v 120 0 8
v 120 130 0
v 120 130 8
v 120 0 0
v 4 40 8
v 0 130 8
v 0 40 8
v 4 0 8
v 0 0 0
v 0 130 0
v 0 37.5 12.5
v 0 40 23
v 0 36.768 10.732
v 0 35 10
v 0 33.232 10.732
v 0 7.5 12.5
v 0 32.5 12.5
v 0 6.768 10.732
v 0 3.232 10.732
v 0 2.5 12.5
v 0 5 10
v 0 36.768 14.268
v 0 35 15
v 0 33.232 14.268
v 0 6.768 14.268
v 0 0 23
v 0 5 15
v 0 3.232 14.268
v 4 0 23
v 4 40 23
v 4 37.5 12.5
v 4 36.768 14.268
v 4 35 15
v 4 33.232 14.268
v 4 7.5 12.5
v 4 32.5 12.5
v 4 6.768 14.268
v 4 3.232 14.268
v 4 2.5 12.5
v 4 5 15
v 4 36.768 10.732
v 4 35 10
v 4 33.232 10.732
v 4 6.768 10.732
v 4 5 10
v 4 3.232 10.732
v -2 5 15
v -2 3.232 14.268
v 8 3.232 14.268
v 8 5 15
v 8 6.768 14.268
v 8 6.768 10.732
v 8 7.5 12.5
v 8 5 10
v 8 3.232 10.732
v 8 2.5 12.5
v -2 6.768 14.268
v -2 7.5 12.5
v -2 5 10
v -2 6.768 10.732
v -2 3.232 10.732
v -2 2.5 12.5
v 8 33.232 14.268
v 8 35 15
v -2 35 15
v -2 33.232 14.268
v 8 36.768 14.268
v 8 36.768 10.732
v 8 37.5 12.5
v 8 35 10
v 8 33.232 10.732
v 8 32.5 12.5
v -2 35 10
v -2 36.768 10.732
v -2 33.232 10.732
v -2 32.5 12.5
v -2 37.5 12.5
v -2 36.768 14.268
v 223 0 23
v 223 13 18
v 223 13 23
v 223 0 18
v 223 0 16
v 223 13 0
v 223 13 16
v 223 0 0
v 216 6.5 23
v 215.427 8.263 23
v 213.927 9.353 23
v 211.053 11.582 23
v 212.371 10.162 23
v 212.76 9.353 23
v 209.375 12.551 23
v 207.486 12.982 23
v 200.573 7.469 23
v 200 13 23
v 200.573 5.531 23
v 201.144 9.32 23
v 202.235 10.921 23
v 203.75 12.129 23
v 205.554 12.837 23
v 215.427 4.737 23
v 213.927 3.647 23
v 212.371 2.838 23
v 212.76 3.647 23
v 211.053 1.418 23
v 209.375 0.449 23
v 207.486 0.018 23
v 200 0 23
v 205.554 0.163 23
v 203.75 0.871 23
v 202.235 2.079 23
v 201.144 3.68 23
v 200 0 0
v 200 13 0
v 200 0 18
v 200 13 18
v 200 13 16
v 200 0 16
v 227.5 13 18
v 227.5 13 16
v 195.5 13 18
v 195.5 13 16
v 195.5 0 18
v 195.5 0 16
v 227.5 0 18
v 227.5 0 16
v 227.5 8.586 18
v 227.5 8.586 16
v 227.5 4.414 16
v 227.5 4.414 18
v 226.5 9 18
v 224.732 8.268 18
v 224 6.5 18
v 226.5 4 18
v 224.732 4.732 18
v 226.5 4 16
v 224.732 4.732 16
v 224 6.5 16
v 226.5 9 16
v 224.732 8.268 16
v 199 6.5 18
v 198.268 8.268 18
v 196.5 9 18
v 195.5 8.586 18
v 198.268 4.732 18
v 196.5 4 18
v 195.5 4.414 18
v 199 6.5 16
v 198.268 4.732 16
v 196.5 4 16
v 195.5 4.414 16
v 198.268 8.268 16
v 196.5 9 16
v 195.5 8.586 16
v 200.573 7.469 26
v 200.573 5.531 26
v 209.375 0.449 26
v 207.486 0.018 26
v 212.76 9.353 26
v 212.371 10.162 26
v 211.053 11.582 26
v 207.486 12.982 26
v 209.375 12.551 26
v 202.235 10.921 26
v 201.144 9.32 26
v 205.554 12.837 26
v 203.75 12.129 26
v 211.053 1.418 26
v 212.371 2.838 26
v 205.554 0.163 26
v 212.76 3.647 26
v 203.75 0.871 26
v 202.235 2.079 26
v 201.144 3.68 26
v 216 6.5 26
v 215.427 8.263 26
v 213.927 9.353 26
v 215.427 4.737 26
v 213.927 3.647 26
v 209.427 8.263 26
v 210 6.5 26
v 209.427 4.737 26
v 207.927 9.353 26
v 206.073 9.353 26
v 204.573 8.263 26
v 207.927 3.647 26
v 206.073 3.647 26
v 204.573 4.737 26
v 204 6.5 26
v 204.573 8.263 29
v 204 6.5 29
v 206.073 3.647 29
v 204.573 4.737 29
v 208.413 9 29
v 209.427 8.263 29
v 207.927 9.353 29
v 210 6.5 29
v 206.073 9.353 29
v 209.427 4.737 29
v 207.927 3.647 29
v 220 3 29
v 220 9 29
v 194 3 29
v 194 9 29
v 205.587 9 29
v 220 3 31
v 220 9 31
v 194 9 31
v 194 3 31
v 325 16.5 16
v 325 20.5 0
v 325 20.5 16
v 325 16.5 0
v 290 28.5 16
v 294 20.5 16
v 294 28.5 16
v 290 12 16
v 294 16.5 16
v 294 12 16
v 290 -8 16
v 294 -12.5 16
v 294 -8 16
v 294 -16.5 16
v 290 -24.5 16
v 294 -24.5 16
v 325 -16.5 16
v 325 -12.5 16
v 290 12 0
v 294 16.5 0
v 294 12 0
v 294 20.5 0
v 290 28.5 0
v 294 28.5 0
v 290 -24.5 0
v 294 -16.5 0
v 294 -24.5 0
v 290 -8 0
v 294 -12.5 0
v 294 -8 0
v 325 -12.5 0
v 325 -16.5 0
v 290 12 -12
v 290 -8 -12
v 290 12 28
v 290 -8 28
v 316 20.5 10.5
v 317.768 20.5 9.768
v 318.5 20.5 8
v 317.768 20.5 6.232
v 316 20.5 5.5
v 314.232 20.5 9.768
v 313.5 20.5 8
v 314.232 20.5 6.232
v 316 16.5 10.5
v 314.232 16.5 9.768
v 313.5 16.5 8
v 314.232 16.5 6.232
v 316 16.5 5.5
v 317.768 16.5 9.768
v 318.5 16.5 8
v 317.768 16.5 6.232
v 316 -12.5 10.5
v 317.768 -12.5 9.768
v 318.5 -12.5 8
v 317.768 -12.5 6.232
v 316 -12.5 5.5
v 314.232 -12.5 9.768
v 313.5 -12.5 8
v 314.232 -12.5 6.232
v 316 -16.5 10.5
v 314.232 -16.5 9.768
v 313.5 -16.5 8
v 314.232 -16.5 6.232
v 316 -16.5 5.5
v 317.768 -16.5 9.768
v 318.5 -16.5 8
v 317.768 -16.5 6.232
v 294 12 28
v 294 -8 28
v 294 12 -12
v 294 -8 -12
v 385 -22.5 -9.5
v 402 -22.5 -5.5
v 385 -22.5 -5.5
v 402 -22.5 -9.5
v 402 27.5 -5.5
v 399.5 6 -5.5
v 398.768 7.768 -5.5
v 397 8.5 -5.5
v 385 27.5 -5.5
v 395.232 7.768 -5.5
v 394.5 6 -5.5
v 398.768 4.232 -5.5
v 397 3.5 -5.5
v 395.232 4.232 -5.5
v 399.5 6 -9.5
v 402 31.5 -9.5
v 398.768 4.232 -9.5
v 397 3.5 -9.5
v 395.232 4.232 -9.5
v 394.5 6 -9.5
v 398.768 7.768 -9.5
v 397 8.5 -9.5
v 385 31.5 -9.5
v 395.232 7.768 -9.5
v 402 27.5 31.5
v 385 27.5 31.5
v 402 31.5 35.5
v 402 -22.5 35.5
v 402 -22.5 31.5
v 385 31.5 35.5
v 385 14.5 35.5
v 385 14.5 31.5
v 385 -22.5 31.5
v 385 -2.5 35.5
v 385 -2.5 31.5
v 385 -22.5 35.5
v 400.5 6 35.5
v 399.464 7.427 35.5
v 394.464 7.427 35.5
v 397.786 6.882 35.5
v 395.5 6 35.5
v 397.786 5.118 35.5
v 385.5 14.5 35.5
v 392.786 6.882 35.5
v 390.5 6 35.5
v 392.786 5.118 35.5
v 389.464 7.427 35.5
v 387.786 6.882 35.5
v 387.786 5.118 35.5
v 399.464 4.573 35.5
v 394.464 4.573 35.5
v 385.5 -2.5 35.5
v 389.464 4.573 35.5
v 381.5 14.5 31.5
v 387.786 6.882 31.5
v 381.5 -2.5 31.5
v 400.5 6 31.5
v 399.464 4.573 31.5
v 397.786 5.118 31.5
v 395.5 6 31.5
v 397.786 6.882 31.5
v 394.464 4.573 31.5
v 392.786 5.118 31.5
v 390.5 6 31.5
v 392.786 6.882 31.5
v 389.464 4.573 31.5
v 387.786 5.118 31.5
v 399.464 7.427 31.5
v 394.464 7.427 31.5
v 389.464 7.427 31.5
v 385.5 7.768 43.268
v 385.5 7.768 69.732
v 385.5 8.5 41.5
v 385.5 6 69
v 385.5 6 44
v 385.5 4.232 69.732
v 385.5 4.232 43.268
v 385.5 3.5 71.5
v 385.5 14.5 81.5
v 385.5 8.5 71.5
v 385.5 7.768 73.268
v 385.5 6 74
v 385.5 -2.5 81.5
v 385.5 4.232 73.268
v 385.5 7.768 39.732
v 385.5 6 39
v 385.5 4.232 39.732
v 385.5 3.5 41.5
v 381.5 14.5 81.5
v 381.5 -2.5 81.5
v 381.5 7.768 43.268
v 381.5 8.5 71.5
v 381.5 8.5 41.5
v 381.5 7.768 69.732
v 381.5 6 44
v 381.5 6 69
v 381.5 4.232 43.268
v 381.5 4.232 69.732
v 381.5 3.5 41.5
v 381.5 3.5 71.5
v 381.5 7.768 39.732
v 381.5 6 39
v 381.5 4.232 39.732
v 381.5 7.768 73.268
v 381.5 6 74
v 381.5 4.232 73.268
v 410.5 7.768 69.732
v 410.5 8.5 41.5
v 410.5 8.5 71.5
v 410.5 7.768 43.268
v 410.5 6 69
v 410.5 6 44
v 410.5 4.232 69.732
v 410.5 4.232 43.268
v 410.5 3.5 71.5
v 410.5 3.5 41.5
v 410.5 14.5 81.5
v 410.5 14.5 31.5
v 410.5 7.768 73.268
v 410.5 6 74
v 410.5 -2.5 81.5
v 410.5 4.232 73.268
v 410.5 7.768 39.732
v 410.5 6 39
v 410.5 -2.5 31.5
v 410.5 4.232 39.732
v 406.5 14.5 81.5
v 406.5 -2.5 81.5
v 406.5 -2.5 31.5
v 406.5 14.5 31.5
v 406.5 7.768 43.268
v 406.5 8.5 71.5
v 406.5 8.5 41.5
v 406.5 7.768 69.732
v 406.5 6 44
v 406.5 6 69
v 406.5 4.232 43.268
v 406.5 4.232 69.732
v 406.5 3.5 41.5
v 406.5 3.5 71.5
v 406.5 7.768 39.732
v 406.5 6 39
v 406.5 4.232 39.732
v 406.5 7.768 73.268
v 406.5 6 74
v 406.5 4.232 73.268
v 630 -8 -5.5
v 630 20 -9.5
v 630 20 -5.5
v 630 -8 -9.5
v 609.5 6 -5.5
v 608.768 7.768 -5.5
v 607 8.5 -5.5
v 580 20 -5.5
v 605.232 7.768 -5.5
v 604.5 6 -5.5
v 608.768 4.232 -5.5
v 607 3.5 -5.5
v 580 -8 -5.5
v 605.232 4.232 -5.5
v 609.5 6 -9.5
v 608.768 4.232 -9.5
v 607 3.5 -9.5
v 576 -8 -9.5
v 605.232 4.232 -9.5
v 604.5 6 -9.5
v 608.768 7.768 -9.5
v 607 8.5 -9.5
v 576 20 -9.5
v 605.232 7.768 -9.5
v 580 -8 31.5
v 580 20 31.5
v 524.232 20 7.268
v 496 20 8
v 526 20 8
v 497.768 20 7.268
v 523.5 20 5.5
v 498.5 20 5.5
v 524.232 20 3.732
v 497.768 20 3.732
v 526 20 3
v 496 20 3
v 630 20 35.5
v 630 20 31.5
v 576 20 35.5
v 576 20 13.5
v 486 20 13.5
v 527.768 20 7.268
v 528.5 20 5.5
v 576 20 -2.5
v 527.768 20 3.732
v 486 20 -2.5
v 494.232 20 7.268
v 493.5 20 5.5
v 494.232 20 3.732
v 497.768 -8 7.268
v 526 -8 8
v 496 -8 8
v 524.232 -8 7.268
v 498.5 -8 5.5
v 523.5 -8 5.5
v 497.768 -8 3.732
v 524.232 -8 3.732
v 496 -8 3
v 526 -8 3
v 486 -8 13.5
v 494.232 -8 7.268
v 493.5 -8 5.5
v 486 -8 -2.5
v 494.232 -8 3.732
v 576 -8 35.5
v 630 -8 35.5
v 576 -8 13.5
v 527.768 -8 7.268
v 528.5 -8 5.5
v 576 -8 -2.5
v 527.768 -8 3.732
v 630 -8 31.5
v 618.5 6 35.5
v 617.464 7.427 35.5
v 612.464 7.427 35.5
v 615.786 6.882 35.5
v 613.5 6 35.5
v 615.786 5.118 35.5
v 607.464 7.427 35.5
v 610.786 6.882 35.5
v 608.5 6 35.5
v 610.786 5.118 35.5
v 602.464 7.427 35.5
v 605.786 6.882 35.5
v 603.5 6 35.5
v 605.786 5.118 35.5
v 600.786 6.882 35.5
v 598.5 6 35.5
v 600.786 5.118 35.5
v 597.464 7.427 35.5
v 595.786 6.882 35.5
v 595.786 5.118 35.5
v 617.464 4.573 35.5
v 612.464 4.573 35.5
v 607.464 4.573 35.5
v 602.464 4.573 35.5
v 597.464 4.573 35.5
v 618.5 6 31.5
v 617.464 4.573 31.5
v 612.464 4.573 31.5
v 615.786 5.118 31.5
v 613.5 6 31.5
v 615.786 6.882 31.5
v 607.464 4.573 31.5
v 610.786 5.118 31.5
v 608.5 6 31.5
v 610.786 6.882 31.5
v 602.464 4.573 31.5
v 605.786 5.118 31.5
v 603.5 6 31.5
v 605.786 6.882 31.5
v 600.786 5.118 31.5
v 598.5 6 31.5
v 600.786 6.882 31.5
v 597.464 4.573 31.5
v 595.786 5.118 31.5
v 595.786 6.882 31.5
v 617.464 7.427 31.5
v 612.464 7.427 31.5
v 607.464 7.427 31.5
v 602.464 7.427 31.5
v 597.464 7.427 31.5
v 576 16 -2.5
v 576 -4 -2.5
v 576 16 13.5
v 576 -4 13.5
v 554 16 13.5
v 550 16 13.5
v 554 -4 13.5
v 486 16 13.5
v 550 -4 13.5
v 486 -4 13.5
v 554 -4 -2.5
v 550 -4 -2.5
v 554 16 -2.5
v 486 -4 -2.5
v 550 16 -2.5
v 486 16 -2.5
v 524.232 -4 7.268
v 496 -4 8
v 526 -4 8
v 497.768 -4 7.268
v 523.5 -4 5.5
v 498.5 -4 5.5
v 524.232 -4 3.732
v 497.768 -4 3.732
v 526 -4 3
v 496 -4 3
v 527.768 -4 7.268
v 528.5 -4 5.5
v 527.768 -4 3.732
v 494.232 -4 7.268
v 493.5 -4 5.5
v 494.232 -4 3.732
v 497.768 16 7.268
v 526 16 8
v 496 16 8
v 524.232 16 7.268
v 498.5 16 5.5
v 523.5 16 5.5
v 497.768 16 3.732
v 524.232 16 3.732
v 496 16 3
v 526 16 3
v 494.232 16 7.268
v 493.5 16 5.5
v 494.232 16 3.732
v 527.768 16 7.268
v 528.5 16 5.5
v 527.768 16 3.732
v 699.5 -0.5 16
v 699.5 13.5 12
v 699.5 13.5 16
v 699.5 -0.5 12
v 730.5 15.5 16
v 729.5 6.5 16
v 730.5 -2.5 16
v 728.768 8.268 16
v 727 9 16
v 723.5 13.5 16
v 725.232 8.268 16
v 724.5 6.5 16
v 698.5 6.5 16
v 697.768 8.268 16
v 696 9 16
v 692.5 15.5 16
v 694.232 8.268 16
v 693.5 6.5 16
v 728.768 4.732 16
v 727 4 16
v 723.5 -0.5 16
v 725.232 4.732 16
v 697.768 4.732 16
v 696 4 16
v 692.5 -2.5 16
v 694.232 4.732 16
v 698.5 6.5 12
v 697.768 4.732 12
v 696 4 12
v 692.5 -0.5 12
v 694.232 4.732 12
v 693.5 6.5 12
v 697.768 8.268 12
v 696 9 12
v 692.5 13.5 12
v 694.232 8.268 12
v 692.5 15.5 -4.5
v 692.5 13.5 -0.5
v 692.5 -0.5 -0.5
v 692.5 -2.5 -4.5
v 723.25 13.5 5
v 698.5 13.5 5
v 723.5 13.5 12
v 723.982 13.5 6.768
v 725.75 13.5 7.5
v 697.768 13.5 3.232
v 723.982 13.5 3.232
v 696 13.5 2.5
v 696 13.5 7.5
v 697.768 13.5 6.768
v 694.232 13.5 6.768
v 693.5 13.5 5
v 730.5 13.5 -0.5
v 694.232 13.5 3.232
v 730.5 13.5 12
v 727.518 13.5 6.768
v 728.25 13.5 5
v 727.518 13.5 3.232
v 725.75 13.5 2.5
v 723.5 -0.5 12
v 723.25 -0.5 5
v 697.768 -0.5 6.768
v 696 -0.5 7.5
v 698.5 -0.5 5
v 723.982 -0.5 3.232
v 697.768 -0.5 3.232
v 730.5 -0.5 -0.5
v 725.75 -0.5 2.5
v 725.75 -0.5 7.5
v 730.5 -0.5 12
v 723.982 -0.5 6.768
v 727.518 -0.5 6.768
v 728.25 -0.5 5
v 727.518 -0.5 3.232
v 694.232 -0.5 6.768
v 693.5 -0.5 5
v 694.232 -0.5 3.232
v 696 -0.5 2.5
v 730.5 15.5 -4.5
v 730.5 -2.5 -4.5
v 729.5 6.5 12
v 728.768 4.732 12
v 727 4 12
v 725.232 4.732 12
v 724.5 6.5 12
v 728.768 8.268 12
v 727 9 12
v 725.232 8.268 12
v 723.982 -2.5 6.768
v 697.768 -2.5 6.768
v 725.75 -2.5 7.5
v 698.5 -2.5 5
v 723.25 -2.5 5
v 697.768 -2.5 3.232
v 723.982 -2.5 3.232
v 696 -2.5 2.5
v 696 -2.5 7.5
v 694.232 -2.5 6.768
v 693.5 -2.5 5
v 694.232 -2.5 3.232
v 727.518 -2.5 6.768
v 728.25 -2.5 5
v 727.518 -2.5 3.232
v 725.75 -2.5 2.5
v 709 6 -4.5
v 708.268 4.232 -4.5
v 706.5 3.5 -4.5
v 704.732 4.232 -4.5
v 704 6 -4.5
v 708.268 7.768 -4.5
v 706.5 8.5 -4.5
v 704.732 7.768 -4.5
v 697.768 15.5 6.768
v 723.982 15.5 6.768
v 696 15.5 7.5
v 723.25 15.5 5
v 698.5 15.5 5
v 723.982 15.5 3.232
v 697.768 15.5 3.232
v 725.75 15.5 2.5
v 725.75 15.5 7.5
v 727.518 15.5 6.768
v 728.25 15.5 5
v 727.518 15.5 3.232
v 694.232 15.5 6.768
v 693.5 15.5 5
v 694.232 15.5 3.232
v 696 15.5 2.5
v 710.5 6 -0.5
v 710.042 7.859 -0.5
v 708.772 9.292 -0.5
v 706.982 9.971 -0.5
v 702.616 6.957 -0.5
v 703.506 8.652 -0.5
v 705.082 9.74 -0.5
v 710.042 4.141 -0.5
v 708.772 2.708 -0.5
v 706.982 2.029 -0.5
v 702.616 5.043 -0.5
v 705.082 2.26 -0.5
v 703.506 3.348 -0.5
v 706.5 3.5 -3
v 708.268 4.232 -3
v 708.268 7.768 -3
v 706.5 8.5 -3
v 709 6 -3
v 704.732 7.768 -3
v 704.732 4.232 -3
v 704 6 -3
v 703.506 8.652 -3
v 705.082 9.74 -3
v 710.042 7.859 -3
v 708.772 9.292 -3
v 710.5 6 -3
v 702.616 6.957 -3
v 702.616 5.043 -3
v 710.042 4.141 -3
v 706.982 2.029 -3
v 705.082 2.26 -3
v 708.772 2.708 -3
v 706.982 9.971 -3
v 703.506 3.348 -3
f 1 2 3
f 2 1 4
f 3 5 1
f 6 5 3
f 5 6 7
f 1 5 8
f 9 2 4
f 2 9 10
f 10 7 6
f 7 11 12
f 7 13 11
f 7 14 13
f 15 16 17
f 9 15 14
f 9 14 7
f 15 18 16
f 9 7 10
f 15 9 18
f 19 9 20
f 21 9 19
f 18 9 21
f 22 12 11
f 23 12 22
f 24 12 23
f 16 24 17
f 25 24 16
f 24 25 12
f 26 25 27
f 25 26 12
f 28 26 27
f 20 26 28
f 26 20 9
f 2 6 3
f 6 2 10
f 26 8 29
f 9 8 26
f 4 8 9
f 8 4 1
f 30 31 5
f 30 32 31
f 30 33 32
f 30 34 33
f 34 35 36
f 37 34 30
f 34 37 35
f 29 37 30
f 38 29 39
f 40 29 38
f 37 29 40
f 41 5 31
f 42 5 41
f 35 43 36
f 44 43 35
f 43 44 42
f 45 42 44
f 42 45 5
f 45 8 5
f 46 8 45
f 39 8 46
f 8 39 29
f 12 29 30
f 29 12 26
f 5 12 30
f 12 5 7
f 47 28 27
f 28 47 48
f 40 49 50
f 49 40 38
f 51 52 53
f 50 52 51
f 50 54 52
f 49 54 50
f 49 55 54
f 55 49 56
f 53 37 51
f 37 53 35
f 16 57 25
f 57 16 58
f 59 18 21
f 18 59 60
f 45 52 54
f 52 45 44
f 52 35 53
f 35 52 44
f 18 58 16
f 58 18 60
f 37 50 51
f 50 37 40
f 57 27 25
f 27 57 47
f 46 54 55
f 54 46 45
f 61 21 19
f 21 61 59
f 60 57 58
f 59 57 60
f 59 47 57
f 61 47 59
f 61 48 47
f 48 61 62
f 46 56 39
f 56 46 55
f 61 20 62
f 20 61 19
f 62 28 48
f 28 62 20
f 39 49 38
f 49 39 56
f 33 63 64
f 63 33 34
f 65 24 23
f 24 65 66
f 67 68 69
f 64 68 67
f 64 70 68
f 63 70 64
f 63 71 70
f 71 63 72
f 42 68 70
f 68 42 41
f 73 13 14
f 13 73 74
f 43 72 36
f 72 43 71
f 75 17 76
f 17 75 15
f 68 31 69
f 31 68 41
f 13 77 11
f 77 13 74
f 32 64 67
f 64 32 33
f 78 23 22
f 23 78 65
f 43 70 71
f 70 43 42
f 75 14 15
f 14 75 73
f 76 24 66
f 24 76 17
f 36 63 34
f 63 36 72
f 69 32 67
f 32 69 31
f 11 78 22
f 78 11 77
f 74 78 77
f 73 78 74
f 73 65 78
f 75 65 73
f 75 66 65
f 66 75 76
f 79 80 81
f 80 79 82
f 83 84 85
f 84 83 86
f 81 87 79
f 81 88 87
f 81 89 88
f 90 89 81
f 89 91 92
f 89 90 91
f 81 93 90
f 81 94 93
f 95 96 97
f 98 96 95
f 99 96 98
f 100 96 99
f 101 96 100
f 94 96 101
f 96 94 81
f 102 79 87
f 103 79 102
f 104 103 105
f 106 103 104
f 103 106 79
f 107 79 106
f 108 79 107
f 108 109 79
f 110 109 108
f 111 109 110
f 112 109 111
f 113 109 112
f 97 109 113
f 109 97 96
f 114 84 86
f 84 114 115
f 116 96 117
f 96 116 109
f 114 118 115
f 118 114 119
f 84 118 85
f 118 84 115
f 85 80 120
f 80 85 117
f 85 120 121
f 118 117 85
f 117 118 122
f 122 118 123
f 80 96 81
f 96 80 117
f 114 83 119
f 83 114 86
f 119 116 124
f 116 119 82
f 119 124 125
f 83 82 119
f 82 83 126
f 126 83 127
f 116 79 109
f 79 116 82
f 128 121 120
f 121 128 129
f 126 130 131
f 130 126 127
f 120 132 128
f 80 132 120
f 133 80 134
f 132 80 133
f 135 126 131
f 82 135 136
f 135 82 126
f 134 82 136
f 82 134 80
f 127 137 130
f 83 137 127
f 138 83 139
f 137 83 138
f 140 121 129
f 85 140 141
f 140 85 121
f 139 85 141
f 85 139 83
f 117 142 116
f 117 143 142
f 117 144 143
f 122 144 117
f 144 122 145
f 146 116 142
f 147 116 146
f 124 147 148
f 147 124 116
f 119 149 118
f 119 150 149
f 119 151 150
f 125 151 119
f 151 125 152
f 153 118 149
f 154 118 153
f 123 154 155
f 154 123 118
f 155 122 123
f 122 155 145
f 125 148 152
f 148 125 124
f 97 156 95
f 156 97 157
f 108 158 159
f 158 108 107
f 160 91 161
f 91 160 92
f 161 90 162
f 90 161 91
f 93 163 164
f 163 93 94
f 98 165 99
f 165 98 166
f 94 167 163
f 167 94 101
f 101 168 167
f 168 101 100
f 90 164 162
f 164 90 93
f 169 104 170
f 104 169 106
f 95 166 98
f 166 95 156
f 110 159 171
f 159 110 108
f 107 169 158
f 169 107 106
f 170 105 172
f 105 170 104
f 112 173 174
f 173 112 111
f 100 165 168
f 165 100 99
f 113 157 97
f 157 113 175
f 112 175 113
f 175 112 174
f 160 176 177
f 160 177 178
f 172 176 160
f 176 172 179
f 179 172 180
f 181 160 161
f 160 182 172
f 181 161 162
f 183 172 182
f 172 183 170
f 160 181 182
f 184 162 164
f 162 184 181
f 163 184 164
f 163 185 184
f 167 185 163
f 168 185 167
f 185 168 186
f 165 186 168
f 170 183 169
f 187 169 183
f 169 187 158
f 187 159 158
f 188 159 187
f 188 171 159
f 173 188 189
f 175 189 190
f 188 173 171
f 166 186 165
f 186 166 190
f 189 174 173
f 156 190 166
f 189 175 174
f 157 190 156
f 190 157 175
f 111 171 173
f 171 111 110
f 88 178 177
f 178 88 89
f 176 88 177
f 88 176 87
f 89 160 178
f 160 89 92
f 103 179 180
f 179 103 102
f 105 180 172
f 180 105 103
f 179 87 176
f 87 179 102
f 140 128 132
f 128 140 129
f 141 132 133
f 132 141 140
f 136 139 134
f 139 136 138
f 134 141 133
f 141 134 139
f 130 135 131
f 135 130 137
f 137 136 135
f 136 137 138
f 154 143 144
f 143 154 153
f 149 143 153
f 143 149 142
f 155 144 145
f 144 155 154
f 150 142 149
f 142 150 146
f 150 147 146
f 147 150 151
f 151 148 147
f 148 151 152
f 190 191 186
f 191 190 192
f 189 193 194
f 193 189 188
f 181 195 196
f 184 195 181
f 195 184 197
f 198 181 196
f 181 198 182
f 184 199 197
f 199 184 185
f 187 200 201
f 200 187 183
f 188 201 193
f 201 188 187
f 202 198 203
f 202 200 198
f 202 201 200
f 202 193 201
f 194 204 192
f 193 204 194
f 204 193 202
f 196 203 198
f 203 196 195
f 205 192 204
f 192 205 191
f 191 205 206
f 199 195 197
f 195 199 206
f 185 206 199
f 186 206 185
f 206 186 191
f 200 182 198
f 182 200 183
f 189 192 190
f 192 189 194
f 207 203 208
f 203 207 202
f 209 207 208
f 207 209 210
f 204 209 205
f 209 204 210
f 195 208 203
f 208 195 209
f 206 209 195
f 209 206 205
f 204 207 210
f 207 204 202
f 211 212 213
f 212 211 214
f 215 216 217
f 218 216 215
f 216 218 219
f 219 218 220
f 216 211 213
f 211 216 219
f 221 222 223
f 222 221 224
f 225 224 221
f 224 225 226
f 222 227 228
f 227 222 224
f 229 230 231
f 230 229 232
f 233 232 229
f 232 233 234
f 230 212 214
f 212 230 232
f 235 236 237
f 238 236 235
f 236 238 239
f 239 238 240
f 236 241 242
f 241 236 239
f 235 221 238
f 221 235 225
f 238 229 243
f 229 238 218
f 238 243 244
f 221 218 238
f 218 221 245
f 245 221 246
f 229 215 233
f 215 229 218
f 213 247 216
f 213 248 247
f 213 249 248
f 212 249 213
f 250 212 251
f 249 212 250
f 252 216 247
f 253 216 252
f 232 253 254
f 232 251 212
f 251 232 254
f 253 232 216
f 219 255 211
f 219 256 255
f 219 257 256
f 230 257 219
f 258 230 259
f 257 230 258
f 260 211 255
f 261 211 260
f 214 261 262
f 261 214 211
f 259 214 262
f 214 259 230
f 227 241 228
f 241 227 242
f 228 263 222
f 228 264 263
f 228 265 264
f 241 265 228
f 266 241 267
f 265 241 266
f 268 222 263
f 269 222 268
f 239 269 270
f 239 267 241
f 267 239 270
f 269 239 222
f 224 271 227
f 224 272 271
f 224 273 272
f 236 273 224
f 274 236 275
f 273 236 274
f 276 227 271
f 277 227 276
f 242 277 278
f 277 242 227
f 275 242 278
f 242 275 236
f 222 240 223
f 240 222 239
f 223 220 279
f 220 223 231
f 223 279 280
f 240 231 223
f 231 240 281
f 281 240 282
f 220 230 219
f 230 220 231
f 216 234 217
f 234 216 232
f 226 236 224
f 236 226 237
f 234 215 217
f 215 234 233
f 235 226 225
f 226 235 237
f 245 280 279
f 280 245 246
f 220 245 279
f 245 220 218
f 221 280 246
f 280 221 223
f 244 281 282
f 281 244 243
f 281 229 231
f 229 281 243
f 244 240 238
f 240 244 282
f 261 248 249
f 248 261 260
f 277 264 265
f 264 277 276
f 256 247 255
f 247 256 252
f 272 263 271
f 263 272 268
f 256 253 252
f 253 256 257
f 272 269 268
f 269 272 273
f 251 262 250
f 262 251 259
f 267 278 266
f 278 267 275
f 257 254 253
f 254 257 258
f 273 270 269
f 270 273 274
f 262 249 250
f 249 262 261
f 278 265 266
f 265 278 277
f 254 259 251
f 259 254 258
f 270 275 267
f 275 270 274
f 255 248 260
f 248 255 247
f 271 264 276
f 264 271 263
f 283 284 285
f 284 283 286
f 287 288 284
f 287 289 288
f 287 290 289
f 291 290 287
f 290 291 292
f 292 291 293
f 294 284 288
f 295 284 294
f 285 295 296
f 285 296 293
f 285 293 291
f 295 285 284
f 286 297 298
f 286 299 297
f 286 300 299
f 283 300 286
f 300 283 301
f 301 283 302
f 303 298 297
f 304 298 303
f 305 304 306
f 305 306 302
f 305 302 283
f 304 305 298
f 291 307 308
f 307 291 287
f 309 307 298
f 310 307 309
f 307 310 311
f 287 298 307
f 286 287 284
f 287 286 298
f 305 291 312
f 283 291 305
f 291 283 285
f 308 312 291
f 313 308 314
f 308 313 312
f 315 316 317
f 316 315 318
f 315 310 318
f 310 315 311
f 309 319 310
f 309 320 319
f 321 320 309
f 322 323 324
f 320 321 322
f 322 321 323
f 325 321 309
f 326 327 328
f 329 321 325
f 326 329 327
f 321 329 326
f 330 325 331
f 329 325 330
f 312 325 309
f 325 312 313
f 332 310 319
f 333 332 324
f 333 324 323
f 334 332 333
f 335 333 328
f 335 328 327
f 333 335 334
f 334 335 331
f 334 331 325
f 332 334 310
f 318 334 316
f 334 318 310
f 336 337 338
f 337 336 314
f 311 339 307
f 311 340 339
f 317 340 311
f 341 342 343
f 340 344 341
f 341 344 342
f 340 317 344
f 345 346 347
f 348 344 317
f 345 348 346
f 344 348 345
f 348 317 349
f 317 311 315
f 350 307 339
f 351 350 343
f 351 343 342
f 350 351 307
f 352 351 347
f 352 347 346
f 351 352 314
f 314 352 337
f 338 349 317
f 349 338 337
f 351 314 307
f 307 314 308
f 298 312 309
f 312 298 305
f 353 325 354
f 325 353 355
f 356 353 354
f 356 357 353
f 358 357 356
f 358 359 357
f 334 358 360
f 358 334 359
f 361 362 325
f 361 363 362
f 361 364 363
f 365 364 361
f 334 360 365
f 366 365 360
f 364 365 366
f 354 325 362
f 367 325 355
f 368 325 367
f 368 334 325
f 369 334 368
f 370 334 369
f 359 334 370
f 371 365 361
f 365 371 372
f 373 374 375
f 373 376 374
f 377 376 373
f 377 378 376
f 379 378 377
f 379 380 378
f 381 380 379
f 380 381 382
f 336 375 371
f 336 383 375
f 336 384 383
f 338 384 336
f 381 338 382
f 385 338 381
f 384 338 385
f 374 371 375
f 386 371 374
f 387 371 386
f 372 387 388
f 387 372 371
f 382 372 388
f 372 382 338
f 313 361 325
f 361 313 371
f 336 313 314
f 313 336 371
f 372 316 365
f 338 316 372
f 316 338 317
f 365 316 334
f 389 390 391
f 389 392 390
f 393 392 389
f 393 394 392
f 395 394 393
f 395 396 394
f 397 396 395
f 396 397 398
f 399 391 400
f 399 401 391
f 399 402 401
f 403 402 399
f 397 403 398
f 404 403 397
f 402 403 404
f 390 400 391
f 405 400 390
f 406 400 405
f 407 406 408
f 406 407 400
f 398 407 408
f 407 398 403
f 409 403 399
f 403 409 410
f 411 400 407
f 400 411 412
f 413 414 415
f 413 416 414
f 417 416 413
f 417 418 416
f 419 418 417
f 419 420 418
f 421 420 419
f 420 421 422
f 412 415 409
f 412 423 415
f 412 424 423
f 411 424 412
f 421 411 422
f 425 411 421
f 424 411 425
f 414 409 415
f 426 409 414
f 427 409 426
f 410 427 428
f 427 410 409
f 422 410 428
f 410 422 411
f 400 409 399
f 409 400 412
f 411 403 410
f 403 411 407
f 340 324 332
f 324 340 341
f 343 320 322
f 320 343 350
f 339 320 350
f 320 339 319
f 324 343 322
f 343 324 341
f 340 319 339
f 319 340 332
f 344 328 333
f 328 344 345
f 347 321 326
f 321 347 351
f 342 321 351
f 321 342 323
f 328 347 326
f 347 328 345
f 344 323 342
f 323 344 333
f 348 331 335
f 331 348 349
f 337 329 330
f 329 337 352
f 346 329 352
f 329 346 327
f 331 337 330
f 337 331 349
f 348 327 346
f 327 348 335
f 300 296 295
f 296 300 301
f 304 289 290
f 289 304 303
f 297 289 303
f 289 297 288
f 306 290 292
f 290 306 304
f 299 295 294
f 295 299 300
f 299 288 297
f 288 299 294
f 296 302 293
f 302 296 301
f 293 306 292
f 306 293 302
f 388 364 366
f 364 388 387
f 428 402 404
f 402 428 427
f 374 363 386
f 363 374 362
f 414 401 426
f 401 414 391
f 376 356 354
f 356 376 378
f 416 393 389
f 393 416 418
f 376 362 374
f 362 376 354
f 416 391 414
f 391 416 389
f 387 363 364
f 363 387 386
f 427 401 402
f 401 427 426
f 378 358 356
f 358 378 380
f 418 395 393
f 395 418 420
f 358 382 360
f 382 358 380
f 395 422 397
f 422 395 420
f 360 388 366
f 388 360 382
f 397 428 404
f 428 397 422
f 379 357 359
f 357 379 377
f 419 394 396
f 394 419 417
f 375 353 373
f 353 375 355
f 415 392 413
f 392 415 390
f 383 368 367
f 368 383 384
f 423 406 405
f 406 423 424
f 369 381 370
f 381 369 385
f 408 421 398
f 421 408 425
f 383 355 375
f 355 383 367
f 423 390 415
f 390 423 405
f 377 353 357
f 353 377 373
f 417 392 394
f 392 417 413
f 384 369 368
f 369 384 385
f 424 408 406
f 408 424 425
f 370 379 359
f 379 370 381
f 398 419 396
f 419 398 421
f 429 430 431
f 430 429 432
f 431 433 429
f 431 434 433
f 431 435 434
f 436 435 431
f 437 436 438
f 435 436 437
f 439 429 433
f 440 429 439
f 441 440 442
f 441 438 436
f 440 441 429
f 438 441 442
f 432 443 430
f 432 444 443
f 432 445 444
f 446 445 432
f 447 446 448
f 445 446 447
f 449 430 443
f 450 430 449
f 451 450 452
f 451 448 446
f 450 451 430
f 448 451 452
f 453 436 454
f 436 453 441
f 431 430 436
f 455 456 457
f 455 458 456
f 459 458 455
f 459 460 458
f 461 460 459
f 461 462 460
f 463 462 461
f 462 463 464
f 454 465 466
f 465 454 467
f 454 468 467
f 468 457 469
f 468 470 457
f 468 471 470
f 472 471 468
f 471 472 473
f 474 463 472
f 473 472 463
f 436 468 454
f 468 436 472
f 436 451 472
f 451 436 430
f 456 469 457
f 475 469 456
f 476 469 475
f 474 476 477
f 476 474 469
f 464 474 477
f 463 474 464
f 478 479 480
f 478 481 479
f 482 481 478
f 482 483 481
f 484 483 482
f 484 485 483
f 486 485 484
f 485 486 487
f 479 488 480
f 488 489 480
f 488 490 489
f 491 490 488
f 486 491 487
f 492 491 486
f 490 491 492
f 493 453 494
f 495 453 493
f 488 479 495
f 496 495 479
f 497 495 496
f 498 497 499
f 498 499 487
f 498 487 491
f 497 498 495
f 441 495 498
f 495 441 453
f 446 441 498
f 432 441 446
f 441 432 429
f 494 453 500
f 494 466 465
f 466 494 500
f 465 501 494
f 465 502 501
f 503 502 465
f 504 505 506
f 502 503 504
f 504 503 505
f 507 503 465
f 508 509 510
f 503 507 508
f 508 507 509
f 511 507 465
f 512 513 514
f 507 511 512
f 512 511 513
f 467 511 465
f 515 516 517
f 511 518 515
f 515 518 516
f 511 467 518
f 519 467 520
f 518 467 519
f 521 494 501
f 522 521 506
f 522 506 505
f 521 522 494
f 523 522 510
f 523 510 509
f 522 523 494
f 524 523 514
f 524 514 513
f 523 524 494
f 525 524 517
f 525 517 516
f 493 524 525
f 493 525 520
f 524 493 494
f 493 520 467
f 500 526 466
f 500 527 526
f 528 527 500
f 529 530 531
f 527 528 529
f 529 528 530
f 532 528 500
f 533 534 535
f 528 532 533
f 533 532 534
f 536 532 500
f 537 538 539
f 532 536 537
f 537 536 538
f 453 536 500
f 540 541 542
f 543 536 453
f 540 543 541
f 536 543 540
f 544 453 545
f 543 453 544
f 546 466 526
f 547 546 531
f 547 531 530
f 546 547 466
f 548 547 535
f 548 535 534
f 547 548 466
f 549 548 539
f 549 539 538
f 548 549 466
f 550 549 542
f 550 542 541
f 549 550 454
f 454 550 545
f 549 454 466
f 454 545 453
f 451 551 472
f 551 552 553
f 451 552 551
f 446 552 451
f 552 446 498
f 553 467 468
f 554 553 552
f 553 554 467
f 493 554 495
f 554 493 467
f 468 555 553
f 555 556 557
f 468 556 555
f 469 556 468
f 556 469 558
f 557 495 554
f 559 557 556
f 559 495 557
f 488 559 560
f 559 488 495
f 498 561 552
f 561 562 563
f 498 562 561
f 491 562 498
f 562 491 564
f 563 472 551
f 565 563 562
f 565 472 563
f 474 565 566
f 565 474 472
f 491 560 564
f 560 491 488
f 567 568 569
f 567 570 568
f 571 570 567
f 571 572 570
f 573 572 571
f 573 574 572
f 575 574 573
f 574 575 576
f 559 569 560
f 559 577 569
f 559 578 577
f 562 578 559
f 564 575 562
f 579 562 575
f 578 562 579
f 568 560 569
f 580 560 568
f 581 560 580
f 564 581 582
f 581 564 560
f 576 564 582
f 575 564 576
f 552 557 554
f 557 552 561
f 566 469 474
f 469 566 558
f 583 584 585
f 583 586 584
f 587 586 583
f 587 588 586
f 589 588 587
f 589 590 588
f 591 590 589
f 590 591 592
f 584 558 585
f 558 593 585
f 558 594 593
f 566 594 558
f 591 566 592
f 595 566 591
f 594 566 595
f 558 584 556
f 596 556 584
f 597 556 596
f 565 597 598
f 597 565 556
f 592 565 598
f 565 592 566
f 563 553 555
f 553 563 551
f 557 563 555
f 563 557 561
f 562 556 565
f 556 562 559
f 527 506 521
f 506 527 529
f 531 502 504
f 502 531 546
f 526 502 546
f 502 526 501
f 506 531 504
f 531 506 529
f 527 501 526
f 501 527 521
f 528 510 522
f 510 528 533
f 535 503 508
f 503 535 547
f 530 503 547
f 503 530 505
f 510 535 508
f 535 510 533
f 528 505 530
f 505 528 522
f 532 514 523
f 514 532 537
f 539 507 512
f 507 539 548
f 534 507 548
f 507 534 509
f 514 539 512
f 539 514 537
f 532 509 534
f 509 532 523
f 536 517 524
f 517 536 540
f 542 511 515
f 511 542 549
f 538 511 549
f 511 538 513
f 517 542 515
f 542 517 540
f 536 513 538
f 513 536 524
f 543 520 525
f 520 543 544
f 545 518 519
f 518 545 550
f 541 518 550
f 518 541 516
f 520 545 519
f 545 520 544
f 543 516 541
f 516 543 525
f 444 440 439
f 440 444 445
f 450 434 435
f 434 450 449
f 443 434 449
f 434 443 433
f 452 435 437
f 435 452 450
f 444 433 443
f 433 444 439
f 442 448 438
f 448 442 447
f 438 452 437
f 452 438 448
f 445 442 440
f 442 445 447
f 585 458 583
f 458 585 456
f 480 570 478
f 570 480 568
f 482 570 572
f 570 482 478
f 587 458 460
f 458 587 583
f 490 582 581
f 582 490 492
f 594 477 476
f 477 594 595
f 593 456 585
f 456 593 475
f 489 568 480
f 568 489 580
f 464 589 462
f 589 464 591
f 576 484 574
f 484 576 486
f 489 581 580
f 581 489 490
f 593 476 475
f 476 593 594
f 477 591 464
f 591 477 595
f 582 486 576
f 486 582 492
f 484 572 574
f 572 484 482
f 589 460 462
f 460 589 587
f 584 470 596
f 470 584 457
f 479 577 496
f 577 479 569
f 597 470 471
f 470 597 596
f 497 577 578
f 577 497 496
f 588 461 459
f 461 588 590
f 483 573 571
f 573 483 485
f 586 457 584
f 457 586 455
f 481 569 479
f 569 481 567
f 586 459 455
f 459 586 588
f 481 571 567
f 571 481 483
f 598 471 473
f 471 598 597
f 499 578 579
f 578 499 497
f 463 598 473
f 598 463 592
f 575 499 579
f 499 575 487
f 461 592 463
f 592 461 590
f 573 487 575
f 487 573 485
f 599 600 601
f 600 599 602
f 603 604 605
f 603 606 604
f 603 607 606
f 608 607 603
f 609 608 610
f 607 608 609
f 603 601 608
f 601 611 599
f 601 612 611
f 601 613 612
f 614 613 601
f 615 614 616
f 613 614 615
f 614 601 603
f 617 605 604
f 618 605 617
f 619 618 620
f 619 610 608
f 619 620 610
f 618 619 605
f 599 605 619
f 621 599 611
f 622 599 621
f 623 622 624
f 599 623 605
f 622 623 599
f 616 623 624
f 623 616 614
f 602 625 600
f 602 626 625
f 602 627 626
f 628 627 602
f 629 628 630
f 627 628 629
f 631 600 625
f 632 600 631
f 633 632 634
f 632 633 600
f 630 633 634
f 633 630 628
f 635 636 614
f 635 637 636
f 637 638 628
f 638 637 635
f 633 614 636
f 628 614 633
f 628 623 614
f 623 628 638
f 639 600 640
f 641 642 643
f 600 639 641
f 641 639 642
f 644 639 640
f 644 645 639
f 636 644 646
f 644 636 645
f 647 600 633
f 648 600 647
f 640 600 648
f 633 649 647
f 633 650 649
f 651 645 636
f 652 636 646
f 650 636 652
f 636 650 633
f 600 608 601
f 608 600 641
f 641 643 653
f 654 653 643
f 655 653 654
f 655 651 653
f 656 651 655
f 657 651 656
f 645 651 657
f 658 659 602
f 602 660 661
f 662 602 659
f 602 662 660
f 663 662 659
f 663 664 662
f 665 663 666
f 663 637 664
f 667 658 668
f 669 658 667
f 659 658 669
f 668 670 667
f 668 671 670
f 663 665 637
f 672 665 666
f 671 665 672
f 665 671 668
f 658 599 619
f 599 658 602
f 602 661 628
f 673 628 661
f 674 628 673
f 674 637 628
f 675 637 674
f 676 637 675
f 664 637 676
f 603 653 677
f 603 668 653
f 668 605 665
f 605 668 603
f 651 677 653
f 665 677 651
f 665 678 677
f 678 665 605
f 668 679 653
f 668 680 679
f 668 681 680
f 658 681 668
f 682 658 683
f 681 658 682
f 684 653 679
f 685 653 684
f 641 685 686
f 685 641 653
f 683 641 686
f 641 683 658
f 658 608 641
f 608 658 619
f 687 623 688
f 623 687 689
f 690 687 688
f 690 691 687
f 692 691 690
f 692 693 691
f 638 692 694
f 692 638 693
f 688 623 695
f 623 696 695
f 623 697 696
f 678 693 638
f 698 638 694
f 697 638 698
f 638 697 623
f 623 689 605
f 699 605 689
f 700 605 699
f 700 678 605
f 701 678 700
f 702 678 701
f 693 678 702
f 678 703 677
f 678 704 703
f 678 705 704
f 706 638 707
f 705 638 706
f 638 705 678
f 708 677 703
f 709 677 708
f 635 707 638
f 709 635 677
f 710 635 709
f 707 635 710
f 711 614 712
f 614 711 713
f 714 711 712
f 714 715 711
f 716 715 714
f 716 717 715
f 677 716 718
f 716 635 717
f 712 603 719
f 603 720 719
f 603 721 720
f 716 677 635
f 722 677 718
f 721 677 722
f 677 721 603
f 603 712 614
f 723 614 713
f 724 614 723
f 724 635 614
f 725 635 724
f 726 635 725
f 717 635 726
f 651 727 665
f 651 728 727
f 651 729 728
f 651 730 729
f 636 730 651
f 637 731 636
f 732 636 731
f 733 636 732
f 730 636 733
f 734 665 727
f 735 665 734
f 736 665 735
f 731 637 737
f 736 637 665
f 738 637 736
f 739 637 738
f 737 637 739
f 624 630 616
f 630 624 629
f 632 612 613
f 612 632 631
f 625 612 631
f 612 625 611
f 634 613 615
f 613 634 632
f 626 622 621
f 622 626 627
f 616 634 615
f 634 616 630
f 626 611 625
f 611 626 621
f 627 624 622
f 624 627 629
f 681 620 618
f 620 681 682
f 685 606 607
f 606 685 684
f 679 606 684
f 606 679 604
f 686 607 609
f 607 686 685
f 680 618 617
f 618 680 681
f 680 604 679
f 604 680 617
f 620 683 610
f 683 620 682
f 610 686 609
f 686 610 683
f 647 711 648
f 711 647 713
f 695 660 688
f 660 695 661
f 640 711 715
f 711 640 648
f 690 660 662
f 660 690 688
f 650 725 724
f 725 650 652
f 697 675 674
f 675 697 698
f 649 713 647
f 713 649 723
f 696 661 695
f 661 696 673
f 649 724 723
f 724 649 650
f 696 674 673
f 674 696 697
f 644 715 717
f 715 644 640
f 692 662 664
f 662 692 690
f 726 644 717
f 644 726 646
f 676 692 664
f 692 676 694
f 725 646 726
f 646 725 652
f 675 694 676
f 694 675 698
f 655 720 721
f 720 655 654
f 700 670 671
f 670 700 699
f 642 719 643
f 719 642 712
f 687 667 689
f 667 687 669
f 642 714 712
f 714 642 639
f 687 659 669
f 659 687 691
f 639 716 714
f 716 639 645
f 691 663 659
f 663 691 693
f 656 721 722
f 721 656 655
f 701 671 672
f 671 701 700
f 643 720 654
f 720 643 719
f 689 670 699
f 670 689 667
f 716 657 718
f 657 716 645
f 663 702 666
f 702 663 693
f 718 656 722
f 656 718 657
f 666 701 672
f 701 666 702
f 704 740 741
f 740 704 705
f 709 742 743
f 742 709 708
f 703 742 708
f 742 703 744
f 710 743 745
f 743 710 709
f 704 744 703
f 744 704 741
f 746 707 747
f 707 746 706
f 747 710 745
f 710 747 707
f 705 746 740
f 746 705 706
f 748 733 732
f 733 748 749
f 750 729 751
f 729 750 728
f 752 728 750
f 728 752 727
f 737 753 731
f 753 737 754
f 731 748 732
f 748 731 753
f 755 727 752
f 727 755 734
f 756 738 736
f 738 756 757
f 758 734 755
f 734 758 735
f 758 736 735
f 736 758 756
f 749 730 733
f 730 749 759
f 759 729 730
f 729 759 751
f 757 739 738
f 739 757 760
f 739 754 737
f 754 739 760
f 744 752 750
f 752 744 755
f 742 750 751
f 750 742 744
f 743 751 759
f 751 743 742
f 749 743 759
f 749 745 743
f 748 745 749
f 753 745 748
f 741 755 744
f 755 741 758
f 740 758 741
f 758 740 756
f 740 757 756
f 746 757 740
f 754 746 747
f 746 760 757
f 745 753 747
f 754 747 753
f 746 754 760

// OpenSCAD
module servo(){

    A = 32;
    B = 23;
    C = 29;
    D = 13;
    E = 32;
    F = 18;
    motorHoleSize = 2.5;

    union(){
         
        color([0.1,0.5,0.8,1])
        difference(){
            
            union(){

                cube([B, D, B]);
                translate([B,0,F-2]) cube([(E-B)/2,D,2]);
                translate([-(E-B)/2,0,F-2]) cube([(E-B)/2,D,2]);
                translate([7,D/2,C-6]) cylinder(h=A-C,r=D/2);
                translate([13,D/2,C-6]) cylinder(h=A-C,r=3);
                
            };
                
            translate([E-5.5,D/2,10]) cylinder(r=motorHoleSize,h=10);
            translate([-3.5,D/2,10]) cylinder(r=motorHoleSize,h=10);
            
        };
        
        color([0.9,0.9,0.9,1]) translate([7,D/2,A-6]) cylinder(h=A-C,r=3);
        
        color([1,1,1,1]) translate([-6,3,29]) cube([B+3,6,2]);
        
    };

};

module servoMountFixed(){

    shift = 0.5;
    innerWidth = 24;
    innerDepth = 14;
    wingWidth = 7;
    wingThickness = 4;
    sideThickness = 2;
    sideHeight = 10;
    height = 14;
    holeSize = 2.5;
    holeSizeLarge = 4;
    bottomWidth = 1.0;
    bottomHeight= 10.5;
    outerWidth = innerWidth+2*wingWidth;
    outerWidthLower = outerWidth*bottomWidth;
    
    translate([-shift,-shift,-wingThickness/2])
    difference(){
        
        difference(){
            
            union(){
                
                translate([-wingWidth, 0, height]) 
                cube([wingWidth, innerDepth, wingThickness]);
                translate([innerWidth, 0, height]) 
                cube([wingWidth, innerDepth, wingThickness]);

                translate([-wingWidth, -sideThickness, height-sideHeight+wingThickness]) 
                cube([outerWidth, sideThickness, sideHeight]);
                translate([outerWidth/2-wingWidth - outerWidthLower/2, -sideThickness, height-sideHeight-bottomHeight+wingThickness]) 
                cube([outerWidthLower, sideThickness, bottomHeight]);
                
                translate([-wingWidth, innerDepth, height-sideHeight+wingThickness]) 
                cube([outerWidth, sideThickness, sideHeight]);
                translate([outerWidth/2-wingWidth - outerWidthLower/2, innerDepth, height-sideHeight-bottomHeight+wingThickness]) 
                cube([outerWidthLower, sideThickness, bottomHeight]);
                
                translate([outerWidth/2-wingWidth - outerWidthLower/2, -sideThickness+sideThickness, height-sideHeight-bottomHeight+wingThickness]) 
                cube([outerWidthLower, innerDepth, wingThickness]);
                
            }
            
            translate([-wingWidth/2,innerDepth/2,height-5]) cylinder(r=holeSize,h=10);
            translate([-wingWidth/2-wingWidth+outerWidth,innerDepth/2,height-5]) cylinder(r=holeSize,h=10);
            
        }
        
        translate([-wingWidth/2,innerDepth*1.5,height-(bottomHeight+sideHeight)/2+holeSize/2+wingThickness/2]) rotate([90,0,0]) cylinder(r=holeSize,h=2*innerDepth);
        translate([innerWidth+wingWidth/2-holeSize/2,innerDepth*1.5,height-(bottomHeight+sideHeight)/2+holeSize/2+wingThickness/2]) rotate([90,0,0]) cylinder(r=holeSize,h=2*innerDepth);
        translate([7,6.5,-10]) cylinder(r=holeSize,h=2*innerDepth);
        translate([7,6.5,-1]) cylinder(r=holeSizeLarge,h=10);
        
    }
    
};
module servoConnectStraight(){
    
    armLength = 50;
    connectorLength = 90;
    armThickness = 4;
    armWidth = 28;
    innerHeight = 41;
    holeSize = 1.5;
    holeFromEdge = 13;
    holesEvery = 5;
    holeFromEdgeBot = 23;
    holeSizeBot = 2.5;
    connectorHeight = 16;
    connectorVertOffset = 3;
    
    translate([-armLength+30,+6-armWidth/2,-innerHeight/2+11])  difference(){
        
        color("red") union(){
            
            translate([0,0,0]) cube([armLength, armWidth, armThickness]);
            translate([0,0,innerHeight]) cube([armLength, armWidth, armThickness]);
            translate([-armThickness,0,0]) cube([armThickness, armWidth, innerHeight+armThickness]);
            
            // Conectors
            translate([-armThickness-connectorLength,0,armThickness+connectorVertOffset]) cube([connectorLength, armThickness, connectorHeight]);
            translate([-armThickness-connectorLength,armWidth-armThickness,armThickness+connectorVertOffset]) cube([connectorLength, armThickness, connectorHeight]);
            
            // Support in center of connector
            translate([-connectorLength/3,armThickness,armThickness+connectorVertOffset]) cube([armThickness, armWidth-2*armThickness, connectorHeight]);
            
            
        }
        
        for (i = [0:4]){
            translate([armLength-i*holesEvery-holeFromEdge,armWidth/2,innerHeight]) cylinder(r=holeSize,h=20,center=true);
        }
        translate([armLength-holeFromEdgeBot,armWidth/2,0]) cylinder(r=holeSizeBot,h=20,center=true);
        translate([-connectorLength+6,armWidth/2,armThickness+connectorHeight/2+connectorVertOffset]) rotate([90,0,0]) cylinder(r=holeSizeBot,h=40,center=true);
        translate([-connectorLength+36,armWidth/2,armThickness+connectorHeight/2+connectorVertOffset]) rotate([90,0,0]) cylinder(r=holeSizeBot,h=40,center=true);
        
        
    }

    
    
}

module servoConnectTwist(){
    
    armLength = 50;
    connectorLength = 50;
    armThickness = 4;
    armWidth = 17;
    innerHeight = 41;
    holeSize = 1.5;
    holeFromEdge = 16;
    holesEvery = 5;
    holeFromEdgeBot = 23;
    numHoles = 4;
    holeSizeBot = 2.5;
    connectorHeight = 16;
    connectorOffset = 3;
    connectorInnerWidth = 25;
    
    translate([-10+-armLength+30,+6-armWidth/2,-innerHeight/2+11])  difference(){
        
        color("red") 
        union(){
            
            translate([15,30,0]) rotate([0,0,-90]){
                translate([0,0,0]) cube([armLength, armWidth, armThickness]);
                translate([0,0,innerHeight]) cube([armLength, armWidth, armThickness]);
                translate([-armThickness,0,0]) cube([armThickness, armWidth, innerHeight+armThickness]);
            }
                
            translate([armLength/2-connectorInnerWidth/2-armThickness+connectorOffset,0,innerHeight]) cube([armThickness,armWidth,connectorLength]);
            translate([armLength/2+connectorInnerWidth/2-armThickness+connectorOffset,0,innerHeight]) cube([armThickness,armWidth,connectorLength]);
            
        };
        
        for (i = [0:numHoles-1]){translate([armLength-i*holesEvery-holeFromEdge,armWidth/2,innerHeight]) cylinder(r=holeSize,h=20,center=true);}
        translate([armLength-holeFromEdgeBot,armWidth/2,0]) cylinder(r=holeSizeBot,h=20,center=true);
        
        translate([armLength/2,armWidth/2,innerHeight+40]) rotate([0,90,0]) cylinder(r=holeSizeBot,h=40,center=true);
        translate([armLength/2,armWidth/2,innerHeight+10]) rotate([0,90,0]) cylinder(r=holeSizeBot,h=40,center=true);
 
    }
    
}

module foot(){
    
    thickness = 4;
    height = 16;
    holeSize = 2.5;
    connectorLength = 35;
    innerDistance = 29;
    supportLength = 12;
    supportWidth = 20;
    
    difference(){
    
        union(){
            
            translate([-connectorLength+25,innerDistance/2+thickness/2,0]) cube([connectorLength,thickness,height]);
            
            translate([-connectorLength+25,-innerDistance/2-thickness/2,0]) cube([connectorLength,thickness,height]);
            
            translate([-connectorLength+25,-innerDistance/2+thickness/2-supportLength,0]) cube([thickness,innerDistance+2*supportLength,height]);
            
            translate([-connectorLength+25,-supportWidth/2+thickness/2,height]) cube([thickness,supportWidth,supportLength]);
            translate([-connectorLength+25,-supportWidth/2+thickness/2,-supportLength]) cube([thickness,supportWidth,supportLength]);
                
        }
        
        translate([16,0,height/2]) rotate([90,0,0]) cylinder(r=holeSize,h=50,center=true);
        
    }
    
}

module leg(){
    
    hipToKnee = 100;
    
    rotate([0,-90,0]){

        servo();
        servoMountFixed();
        servoConnectStraight();

        translate([-hipToKnee,0,0]){
            servo();
            servoMountFixed();
            servoConnectStraight();
        }

        translate([-2*hipToKnee-20,4,-2.5]) foot();

        translate([67.5,0,-1]) rotate([90,0,-90]) {
            rotate([0,0,90]) {
                servo();
                servoMountFixed();
            }
            servoConnectTwist();
        }
        
    }
   
}

module bodyPlate(){
    
    thickness = 8;
    width = 120;
    length = 130;
    
    translate([0,0,0]) cube([width,length,thickness]);
    translate([0,0,8]) cube([4,40,15]);
    translate([-2,5,12.5]) rotate([0,90,0]) cylinder(r=2.5,h=10);
    translate([-2,35,12.5]) rotate([0,90,0]) cylinder(r=2.5,h=10);
    
}

module body(){
 
    translate([15,-17.5,50]) bodyPlate();
    translate([135,320,50]) rotate([0,0,180]) bodyPlate();
    translate([100,150,50]) rotate([90,0,0]) rotate([0,90,0]) {servo(); servoMountFixed();}
    
    
}

betweenLegs = 150;
catLength = 300;

//translate([0,0,0]) leg();
//translate([betweenLegs,0,0]) mirror([1,0,0])  leg();
//translate([betweenLegs,catLength,0]) mirror([1,0,0])  leg();
//translate([0,catLength,0])leg();
//translate([0,0,0]) body();

translate([0,0,0]) bodyPlate();
translate([200,0,0]) servo();
translate([300,0,0]) foot();
translate([400,0,0]) servoConnectTwist();
translate([600,0,0]) servoConnectStraight();
translate([700,0,0]) servoMountFixed();
